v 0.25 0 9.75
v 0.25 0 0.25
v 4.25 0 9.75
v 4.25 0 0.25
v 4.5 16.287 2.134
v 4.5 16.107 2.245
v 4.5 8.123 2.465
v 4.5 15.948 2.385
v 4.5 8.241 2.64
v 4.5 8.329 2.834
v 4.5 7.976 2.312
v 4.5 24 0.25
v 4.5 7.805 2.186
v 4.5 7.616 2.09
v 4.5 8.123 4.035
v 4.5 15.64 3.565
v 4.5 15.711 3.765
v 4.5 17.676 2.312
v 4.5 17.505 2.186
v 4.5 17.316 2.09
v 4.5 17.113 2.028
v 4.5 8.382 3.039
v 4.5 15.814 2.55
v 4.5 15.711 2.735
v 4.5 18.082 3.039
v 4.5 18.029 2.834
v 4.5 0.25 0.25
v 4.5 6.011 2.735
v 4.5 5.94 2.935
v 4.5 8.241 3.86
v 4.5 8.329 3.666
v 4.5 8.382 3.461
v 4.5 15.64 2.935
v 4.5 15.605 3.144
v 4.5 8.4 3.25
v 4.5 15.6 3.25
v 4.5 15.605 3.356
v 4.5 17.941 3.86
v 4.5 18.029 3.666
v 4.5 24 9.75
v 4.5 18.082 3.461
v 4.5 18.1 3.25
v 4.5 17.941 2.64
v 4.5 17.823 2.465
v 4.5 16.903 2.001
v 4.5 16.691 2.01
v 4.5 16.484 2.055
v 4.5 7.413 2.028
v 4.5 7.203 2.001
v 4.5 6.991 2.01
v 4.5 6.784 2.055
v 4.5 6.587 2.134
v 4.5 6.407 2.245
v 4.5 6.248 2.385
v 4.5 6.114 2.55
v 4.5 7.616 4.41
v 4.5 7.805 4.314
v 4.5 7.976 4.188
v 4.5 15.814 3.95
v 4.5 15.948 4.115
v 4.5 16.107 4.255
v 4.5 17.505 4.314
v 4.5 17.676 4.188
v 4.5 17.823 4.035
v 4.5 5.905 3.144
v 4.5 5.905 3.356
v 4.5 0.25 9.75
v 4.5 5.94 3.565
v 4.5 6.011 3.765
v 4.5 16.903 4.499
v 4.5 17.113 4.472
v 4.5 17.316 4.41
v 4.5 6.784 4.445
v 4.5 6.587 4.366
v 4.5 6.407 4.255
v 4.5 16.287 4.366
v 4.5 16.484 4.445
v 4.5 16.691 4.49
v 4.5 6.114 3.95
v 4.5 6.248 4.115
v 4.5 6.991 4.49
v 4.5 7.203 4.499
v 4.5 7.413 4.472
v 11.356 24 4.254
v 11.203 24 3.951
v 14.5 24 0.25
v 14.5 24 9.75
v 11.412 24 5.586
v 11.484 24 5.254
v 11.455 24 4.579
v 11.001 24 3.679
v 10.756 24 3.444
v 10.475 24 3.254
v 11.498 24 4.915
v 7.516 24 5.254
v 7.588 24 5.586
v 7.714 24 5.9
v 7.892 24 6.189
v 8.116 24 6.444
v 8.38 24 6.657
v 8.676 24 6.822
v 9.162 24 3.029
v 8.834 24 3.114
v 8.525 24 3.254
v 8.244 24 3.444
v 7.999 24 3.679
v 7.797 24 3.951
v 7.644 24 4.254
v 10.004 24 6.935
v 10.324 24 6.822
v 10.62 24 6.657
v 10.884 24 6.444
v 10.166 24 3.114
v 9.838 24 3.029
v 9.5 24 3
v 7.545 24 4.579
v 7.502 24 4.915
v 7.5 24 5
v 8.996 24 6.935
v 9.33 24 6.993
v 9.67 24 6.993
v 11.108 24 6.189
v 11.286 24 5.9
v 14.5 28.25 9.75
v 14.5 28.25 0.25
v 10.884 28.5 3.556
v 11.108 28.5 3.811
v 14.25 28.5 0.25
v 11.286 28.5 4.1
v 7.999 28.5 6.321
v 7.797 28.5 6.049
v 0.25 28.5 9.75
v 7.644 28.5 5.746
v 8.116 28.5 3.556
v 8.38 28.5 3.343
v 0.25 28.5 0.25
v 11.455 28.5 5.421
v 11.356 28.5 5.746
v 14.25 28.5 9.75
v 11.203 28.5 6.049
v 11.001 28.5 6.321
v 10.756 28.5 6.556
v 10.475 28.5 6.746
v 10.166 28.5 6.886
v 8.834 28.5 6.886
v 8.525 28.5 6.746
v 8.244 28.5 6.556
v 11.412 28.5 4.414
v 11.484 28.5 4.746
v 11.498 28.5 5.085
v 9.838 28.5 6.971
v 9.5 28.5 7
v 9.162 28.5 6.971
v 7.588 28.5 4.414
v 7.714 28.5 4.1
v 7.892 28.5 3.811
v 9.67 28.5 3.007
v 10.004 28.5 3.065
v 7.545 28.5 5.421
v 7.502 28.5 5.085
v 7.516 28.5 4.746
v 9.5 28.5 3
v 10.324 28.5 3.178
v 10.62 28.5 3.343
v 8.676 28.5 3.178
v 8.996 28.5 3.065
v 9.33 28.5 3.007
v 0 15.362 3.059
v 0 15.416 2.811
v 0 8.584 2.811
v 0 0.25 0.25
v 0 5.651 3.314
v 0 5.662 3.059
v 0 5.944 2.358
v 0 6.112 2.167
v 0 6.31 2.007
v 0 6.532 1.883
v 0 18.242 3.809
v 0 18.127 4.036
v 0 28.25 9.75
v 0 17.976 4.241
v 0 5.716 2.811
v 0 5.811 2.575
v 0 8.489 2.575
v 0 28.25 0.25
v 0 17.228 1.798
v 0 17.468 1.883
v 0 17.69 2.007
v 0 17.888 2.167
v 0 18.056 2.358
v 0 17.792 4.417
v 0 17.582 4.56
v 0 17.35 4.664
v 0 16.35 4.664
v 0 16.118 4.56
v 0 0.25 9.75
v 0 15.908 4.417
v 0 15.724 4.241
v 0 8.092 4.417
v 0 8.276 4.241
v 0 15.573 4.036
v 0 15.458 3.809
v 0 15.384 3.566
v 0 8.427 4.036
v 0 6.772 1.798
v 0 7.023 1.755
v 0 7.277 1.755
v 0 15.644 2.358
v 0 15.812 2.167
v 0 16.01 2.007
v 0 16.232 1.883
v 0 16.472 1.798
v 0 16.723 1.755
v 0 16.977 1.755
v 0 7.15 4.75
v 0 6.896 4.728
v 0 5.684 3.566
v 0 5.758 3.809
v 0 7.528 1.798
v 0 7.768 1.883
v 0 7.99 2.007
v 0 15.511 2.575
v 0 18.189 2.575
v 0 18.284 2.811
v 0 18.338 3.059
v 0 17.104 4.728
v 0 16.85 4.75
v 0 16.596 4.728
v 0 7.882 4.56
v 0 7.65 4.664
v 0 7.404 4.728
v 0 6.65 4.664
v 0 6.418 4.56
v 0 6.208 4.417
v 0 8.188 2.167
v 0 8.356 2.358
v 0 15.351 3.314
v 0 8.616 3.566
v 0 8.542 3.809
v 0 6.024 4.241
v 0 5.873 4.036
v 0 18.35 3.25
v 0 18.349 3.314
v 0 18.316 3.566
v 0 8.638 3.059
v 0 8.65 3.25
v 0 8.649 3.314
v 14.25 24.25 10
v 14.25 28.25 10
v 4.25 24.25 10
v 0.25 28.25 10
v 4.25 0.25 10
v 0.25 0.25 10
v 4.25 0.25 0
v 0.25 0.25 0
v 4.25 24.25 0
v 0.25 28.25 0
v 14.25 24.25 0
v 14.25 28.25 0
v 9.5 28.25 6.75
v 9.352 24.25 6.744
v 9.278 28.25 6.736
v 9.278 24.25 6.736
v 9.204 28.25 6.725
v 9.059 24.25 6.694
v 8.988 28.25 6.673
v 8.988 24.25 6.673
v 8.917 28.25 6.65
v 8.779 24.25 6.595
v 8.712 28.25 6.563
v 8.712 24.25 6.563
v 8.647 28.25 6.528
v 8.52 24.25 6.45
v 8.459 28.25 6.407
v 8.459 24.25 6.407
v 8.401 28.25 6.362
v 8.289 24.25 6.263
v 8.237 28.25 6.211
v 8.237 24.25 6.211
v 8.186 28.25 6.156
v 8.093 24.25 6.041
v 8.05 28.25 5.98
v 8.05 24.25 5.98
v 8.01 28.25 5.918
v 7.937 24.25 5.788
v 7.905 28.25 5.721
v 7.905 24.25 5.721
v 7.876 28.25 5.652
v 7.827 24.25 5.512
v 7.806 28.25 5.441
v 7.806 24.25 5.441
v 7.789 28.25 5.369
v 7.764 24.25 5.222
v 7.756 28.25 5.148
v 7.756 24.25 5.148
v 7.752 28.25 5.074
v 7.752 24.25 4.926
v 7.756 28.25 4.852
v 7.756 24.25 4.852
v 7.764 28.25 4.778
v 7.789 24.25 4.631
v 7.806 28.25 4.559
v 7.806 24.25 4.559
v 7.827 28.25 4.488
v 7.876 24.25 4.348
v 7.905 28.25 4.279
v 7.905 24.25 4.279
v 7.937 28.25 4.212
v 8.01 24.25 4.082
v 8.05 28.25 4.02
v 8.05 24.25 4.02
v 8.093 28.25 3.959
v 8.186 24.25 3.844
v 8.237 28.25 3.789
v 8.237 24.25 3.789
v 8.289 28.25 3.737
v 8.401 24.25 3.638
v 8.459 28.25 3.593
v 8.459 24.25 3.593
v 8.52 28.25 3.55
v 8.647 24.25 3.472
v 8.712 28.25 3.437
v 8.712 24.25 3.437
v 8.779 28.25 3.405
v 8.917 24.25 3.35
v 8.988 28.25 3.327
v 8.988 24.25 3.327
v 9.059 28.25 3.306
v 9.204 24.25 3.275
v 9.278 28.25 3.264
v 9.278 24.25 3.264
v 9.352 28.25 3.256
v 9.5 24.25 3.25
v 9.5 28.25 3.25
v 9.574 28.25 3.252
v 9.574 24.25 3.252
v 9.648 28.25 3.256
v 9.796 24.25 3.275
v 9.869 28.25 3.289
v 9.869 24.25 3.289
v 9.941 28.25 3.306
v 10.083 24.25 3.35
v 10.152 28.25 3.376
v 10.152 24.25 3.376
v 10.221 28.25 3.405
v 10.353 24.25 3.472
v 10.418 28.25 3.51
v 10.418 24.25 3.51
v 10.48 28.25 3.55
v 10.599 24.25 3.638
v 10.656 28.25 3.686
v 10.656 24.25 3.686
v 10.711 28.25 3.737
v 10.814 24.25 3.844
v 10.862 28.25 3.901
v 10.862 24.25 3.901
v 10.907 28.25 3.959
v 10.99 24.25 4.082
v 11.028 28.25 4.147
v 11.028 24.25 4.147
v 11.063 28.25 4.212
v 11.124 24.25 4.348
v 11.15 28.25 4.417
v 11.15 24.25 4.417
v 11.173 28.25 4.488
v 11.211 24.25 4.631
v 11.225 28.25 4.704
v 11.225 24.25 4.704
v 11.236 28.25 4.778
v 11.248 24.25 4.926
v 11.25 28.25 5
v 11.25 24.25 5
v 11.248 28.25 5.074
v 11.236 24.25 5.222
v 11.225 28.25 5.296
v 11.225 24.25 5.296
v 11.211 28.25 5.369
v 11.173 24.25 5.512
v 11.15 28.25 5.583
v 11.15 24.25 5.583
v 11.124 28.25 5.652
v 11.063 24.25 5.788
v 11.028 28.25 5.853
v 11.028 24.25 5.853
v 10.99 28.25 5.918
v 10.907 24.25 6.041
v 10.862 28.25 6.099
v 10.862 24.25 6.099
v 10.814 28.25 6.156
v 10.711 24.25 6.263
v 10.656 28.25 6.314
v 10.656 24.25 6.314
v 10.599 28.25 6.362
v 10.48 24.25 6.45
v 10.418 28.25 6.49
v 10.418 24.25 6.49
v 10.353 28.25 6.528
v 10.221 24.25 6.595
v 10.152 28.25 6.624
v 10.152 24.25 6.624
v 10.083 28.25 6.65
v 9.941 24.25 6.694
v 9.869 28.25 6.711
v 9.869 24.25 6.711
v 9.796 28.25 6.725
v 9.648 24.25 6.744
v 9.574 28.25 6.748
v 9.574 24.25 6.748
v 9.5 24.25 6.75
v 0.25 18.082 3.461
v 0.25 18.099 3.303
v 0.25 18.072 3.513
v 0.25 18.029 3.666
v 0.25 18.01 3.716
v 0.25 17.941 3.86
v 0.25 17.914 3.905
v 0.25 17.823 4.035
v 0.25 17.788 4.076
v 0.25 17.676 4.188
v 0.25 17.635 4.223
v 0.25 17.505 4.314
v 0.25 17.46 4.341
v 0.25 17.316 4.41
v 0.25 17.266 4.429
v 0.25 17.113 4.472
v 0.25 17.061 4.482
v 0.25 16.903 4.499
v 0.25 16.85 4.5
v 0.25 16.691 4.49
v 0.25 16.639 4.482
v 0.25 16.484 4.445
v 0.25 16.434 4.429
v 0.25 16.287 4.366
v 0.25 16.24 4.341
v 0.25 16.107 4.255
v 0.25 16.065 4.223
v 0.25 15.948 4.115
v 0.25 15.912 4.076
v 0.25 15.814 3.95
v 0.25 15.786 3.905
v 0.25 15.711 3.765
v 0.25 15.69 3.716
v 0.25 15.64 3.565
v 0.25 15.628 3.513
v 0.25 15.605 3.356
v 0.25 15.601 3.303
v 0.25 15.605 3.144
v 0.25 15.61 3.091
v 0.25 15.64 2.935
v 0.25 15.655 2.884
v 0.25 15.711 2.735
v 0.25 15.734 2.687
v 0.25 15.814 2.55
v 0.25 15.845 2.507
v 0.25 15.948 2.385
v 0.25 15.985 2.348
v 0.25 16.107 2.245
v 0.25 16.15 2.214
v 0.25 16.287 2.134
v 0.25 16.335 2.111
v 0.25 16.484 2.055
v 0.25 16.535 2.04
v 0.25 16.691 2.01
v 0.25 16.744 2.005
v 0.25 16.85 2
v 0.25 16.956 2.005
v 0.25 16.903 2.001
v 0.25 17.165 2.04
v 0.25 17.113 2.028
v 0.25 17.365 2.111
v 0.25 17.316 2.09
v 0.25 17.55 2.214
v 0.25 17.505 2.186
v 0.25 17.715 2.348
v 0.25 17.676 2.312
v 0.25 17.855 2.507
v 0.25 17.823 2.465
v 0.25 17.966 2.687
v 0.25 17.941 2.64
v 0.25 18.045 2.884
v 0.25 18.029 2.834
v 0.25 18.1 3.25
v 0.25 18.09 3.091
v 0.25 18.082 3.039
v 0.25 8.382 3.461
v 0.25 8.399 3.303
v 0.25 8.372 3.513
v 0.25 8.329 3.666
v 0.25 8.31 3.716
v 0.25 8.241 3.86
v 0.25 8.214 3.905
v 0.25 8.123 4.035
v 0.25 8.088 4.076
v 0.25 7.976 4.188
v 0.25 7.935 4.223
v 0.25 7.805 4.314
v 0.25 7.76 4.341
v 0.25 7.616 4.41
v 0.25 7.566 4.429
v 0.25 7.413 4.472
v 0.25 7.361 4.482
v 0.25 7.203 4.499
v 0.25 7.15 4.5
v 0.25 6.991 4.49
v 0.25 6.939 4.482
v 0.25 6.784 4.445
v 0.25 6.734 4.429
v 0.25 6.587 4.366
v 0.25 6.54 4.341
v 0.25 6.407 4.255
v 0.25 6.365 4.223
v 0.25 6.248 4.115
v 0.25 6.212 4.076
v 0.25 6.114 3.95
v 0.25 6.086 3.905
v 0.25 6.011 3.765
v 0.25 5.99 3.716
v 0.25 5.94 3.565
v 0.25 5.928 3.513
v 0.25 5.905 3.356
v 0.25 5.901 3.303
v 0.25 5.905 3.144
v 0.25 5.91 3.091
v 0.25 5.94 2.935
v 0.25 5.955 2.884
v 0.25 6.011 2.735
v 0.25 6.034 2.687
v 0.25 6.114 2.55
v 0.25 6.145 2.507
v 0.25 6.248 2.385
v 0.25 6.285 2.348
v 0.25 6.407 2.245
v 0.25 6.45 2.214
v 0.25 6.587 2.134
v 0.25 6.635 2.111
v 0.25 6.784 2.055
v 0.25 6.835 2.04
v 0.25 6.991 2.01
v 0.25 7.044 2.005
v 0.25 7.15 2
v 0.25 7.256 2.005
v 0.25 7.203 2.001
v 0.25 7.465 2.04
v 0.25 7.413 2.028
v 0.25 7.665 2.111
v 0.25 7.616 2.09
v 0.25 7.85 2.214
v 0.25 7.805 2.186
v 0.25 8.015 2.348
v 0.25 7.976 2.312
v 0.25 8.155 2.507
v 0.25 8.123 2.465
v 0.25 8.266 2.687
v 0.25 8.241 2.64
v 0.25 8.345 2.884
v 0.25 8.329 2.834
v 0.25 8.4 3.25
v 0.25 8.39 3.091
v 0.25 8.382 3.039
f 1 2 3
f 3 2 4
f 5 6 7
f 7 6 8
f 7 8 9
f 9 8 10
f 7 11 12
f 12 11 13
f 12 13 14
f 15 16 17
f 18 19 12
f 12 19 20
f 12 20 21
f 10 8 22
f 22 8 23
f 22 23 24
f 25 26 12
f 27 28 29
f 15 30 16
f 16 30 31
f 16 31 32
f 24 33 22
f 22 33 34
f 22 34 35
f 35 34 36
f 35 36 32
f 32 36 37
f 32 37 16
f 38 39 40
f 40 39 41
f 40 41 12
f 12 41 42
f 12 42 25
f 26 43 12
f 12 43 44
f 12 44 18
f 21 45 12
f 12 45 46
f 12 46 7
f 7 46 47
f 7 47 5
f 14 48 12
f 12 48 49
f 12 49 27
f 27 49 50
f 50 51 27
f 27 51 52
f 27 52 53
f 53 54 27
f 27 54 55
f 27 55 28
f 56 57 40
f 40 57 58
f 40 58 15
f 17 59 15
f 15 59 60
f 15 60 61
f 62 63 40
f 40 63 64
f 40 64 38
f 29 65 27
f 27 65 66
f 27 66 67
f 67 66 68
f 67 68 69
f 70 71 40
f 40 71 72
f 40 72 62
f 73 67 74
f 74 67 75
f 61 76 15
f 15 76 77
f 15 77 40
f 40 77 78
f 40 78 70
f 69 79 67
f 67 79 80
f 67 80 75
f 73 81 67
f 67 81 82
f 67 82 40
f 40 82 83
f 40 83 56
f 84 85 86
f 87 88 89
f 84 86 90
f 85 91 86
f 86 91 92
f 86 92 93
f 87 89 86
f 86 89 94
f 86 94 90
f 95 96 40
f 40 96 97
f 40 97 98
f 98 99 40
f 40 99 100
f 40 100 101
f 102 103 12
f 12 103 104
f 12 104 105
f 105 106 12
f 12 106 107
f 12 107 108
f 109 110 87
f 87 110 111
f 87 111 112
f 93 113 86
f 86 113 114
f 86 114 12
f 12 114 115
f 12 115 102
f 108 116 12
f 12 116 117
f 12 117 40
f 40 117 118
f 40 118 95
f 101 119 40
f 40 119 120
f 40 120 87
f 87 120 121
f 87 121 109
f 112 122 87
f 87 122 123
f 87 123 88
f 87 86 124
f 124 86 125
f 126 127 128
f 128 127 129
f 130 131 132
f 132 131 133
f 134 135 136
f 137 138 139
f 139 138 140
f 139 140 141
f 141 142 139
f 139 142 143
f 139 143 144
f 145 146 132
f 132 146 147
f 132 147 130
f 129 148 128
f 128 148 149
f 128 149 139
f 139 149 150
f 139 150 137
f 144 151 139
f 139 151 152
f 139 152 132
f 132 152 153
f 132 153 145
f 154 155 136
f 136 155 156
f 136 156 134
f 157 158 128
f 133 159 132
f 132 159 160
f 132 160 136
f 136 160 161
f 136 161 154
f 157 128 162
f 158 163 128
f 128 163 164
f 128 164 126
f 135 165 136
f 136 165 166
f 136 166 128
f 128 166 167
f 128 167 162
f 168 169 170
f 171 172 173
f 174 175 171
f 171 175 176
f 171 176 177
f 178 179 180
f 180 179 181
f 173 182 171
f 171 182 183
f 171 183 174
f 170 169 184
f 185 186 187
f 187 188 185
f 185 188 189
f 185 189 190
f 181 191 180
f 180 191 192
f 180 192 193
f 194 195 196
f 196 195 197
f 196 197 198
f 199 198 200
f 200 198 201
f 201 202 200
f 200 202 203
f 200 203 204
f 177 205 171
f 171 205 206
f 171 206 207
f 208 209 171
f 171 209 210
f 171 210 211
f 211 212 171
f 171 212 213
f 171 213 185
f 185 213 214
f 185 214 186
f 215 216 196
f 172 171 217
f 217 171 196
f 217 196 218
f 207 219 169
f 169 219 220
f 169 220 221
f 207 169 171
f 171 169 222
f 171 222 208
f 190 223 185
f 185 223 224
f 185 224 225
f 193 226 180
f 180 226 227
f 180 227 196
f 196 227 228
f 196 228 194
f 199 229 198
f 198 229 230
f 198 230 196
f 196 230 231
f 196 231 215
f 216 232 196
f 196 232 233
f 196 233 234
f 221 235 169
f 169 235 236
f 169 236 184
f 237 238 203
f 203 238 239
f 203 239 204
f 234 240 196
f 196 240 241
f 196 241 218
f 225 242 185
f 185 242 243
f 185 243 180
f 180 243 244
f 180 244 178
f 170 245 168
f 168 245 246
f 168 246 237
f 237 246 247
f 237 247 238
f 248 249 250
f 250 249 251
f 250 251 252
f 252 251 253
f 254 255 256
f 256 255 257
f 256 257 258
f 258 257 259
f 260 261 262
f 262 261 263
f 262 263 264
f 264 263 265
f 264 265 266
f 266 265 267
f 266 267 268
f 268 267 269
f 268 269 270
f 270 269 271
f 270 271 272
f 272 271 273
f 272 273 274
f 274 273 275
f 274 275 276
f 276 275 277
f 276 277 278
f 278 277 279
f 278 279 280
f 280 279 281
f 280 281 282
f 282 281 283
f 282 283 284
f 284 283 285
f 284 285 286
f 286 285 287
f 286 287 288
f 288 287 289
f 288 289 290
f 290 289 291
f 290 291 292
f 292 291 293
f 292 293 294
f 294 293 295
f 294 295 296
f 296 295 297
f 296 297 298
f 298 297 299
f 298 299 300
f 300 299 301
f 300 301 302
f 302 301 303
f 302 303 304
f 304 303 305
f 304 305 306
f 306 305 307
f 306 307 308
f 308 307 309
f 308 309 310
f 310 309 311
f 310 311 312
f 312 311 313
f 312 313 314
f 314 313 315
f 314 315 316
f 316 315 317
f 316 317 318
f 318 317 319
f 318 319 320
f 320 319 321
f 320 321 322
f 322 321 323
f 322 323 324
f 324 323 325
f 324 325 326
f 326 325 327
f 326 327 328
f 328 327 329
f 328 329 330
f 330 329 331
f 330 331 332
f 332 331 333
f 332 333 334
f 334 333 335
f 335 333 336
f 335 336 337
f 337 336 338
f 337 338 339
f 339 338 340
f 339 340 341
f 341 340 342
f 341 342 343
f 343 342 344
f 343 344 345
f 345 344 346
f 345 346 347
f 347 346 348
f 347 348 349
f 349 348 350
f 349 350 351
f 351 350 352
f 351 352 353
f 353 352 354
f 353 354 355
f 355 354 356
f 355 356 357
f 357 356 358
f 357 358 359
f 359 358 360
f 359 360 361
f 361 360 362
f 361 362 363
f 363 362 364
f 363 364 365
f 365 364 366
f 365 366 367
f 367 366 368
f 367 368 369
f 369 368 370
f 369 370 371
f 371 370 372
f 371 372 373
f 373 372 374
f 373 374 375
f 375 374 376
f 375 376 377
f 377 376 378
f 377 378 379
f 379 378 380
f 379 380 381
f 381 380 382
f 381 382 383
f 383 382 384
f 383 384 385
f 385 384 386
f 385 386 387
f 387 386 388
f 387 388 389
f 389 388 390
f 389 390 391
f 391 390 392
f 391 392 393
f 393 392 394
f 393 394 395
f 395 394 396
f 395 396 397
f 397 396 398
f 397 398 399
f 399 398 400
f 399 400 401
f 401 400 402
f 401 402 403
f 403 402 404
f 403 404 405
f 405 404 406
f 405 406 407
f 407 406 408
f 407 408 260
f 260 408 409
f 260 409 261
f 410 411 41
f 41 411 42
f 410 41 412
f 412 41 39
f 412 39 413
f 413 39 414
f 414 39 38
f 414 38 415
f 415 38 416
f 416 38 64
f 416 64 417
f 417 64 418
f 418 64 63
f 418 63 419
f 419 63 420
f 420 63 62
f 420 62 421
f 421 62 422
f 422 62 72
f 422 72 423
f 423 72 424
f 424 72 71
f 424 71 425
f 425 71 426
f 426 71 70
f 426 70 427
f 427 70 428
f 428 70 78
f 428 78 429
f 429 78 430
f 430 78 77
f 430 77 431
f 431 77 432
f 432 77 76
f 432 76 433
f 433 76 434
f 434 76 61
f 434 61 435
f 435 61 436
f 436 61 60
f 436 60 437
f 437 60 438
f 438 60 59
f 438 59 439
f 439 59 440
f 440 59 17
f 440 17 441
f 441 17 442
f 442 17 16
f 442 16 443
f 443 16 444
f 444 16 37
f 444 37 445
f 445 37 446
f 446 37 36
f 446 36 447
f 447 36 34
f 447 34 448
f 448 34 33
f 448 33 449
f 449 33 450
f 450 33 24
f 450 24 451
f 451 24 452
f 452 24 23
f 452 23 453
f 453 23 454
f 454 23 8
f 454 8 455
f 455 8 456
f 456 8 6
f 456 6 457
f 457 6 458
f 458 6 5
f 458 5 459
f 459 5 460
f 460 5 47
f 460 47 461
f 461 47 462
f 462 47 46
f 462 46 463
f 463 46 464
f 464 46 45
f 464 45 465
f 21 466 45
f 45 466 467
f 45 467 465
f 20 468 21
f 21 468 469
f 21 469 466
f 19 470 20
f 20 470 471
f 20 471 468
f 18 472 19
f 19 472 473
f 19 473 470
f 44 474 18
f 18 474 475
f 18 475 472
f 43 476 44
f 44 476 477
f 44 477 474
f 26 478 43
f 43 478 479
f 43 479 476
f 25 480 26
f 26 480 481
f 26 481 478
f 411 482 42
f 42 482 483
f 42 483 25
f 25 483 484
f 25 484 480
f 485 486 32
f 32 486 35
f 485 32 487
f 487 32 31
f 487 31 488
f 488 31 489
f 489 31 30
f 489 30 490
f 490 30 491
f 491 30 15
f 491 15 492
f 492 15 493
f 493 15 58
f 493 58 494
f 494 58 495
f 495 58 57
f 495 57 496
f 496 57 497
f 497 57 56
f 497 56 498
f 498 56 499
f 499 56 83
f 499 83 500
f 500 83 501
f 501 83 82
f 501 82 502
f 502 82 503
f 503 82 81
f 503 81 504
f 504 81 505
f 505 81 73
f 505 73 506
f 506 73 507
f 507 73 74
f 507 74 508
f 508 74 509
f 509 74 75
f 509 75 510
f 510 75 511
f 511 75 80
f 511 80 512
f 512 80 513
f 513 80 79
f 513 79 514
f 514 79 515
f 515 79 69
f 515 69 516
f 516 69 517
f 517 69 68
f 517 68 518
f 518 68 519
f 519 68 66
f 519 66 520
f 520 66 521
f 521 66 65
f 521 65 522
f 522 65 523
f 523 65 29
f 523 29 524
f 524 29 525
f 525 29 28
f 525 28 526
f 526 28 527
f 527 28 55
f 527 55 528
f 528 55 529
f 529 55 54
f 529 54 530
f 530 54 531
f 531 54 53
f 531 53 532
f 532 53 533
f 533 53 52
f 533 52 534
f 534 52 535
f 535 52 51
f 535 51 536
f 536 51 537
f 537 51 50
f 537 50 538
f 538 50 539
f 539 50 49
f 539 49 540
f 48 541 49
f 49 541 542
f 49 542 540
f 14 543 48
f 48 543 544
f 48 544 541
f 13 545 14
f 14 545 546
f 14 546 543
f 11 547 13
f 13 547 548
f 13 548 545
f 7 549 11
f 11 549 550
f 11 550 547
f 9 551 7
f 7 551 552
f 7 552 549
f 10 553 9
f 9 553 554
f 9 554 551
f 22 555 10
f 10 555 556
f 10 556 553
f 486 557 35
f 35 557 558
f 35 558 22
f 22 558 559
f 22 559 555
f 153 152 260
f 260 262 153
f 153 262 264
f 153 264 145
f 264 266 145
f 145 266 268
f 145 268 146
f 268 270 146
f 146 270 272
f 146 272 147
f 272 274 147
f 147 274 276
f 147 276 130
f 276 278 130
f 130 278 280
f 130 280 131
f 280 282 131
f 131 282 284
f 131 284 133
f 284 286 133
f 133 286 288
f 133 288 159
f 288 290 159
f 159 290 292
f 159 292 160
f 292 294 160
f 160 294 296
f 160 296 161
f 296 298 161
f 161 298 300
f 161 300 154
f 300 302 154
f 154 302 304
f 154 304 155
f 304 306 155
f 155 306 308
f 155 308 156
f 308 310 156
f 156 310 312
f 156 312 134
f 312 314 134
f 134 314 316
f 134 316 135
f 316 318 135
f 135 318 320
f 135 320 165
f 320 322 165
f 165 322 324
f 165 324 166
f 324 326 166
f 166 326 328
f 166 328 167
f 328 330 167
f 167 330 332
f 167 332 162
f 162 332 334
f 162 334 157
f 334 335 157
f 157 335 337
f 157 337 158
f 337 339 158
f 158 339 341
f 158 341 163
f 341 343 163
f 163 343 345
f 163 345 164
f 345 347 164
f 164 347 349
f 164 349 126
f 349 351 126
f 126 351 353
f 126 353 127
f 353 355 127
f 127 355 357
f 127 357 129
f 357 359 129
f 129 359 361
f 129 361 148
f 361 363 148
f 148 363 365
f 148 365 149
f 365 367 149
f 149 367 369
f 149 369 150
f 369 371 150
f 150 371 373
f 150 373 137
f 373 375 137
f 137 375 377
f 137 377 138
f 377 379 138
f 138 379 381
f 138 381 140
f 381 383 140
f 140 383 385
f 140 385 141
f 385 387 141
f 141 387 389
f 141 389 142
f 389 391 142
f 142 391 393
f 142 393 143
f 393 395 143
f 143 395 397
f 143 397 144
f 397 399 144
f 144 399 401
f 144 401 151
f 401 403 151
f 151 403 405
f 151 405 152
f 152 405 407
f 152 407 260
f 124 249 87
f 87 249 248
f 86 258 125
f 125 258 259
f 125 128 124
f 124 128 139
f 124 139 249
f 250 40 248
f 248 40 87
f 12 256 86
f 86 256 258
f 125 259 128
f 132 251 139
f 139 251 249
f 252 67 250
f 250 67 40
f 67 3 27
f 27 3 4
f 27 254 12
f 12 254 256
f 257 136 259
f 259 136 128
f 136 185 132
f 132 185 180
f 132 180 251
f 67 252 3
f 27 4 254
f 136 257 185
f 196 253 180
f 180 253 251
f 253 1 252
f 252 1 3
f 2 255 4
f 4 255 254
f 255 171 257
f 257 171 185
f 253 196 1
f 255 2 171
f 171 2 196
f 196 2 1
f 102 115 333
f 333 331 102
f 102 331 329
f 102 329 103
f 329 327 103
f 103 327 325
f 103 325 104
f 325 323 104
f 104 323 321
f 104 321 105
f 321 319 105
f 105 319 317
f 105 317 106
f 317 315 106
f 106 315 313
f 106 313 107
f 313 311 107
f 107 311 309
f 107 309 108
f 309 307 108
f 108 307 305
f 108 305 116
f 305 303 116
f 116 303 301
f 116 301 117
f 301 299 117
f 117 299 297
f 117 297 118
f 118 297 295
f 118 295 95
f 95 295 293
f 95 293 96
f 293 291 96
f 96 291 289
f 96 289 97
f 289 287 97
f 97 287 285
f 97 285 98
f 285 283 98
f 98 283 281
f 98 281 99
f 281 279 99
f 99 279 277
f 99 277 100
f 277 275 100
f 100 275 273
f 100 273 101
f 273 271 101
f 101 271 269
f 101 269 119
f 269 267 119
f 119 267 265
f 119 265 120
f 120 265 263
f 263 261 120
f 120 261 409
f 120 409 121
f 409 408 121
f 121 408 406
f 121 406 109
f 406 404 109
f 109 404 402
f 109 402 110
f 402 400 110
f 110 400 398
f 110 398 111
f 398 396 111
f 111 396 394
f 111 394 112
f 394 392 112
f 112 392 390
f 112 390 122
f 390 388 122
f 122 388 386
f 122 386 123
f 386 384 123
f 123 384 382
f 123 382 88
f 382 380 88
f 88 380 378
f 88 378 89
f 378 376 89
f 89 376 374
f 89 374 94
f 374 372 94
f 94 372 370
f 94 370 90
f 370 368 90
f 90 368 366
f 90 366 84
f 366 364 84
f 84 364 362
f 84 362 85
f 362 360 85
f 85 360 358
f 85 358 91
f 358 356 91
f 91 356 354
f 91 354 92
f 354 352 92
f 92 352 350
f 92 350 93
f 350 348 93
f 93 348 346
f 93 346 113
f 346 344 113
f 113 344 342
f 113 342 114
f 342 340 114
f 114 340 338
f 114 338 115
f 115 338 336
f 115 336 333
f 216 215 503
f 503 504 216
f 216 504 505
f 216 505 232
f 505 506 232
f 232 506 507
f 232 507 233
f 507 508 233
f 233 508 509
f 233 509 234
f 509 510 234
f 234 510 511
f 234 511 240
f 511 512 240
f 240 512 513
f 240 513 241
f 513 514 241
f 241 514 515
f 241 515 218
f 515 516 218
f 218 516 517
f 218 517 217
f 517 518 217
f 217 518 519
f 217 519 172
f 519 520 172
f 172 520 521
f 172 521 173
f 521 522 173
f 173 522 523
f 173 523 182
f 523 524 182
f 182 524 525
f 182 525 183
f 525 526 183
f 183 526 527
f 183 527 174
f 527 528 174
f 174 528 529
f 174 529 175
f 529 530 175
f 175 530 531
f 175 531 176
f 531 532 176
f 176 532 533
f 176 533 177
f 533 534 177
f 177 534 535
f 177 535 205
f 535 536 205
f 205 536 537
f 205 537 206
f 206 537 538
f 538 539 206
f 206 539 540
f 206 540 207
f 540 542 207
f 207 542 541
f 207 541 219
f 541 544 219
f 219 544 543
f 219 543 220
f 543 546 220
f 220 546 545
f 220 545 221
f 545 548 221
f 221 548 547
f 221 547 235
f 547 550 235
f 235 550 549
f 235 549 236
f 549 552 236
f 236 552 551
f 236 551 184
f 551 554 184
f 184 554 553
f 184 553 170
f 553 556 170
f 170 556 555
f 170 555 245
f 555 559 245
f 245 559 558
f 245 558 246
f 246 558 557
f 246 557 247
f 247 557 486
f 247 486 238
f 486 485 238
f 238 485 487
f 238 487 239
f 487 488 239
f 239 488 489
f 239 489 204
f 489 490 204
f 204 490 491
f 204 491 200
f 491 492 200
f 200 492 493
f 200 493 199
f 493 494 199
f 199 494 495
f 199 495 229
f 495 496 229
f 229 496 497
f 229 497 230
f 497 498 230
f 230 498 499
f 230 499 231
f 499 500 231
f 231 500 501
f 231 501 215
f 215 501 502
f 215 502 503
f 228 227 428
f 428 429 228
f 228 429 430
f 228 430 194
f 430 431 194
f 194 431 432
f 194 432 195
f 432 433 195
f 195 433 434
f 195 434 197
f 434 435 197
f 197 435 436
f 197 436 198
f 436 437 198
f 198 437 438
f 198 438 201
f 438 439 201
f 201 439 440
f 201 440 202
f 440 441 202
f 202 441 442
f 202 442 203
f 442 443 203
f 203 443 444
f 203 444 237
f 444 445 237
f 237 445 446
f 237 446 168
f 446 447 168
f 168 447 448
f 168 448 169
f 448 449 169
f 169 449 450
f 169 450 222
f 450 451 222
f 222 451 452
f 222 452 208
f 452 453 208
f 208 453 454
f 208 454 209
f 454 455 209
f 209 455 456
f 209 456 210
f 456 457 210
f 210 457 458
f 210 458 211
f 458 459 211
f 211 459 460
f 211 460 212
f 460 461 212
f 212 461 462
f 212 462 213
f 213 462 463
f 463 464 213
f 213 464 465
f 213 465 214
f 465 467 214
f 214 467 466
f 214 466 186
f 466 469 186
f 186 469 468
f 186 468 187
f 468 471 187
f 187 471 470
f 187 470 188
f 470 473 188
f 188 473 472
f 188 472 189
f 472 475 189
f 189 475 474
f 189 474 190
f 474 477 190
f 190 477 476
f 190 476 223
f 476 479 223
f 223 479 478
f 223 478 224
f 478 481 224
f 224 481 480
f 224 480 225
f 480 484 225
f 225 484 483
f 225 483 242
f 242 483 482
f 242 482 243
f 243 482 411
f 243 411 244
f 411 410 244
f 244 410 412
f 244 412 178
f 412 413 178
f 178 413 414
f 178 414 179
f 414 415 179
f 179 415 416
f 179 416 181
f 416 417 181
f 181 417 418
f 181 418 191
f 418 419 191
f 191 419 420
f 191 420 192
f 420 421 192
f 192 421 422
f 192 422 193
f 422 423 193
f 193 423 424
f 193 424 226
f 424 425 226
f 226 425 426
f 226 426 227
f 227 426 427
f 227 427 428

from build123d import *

# Parameters (mm, degrees)
BOSS_EXTRUDE1_DEPTH = 10
SKETCH2_R           = 1.75
CUT_EXTRUDE1_DEPTH  = 10
SKETCH3_R           = 1.25
CUT_EXTRUDE2_DEPTH  = 10
CHAMFER1_SIZE       = 0.25


with BuildPart() as part:
    # Sketch1 → Boss-Extrude1 (new body)
    with BuildSketch(Plane.XY):
        Polygon((0, 0), (0, 28.5), (14.5, 28.5), (14.5, 24), (4.5, 24), (4.5, 0), align=None)
    extrude(amount=BOSS_EXTRUDE1_DEPTH)

    # Sketch2 → Cut-Extrude1 (cut)
    with BuildSketch(Plane.XZ.offset(-24)):
        with Locations((9.5, 5)):
            Circle(SKETCH2_R)
    extrude(amount=-CUT_EXTRUDE1_DEPTH, mode=Mode.SUBTRACT)

    # Sketch3 → Cut-Extrude2 (cut)
    with BuildSketch(Plane(origin=(4.5, 0, 0), x_dir=(0, 0, -1), z_dir=(1, 0, 0))):
        with Locations(Location((-3.25, 7.15, 0), (0, 0, 90))):
            Circle(SKETCH3_R)
        with Locations(Location((-3.25, 16.85, 0), (0, 0, 90))):
            Circle(SKETCH3_R)
    extrude(amount=-CUT_EXTRUDE2_DEPTH, mode=Mode.SUBTRACT)

    # Chamfer1
    chamfer1_edges = [part.edges().sort_by_distance(p)[0] for p in [
        (0, 0, 5),
        (0, 28.5, 5),
        (14.5, 28.5, 5),
        (4.5, 0, 5),
        (9.5, 24, 10),
        (14.5, 26.25, 10),
        (7.75, 28.5, 5),
        (7.25, 28.5, 10),
        (7.75, 24, 5),
        (0, 14.25, 10),
        (0, 5.9, 3.25),
        (0, 15.6, 3.25),
        (2.25, 0, 10),
        (0, 14.25, 0),
        (7.25, 28.5, 0),
        (14.5, 26.25, 0),
        (9.5, 24, 0),
        (4.5, 12, 0),
        (2.25, 0, 0),
        (4.5, 12, 10),
    ]]
    chamfer(chamfer1_edges, length=CHAMFER1_SIZE)


solid = part.part
